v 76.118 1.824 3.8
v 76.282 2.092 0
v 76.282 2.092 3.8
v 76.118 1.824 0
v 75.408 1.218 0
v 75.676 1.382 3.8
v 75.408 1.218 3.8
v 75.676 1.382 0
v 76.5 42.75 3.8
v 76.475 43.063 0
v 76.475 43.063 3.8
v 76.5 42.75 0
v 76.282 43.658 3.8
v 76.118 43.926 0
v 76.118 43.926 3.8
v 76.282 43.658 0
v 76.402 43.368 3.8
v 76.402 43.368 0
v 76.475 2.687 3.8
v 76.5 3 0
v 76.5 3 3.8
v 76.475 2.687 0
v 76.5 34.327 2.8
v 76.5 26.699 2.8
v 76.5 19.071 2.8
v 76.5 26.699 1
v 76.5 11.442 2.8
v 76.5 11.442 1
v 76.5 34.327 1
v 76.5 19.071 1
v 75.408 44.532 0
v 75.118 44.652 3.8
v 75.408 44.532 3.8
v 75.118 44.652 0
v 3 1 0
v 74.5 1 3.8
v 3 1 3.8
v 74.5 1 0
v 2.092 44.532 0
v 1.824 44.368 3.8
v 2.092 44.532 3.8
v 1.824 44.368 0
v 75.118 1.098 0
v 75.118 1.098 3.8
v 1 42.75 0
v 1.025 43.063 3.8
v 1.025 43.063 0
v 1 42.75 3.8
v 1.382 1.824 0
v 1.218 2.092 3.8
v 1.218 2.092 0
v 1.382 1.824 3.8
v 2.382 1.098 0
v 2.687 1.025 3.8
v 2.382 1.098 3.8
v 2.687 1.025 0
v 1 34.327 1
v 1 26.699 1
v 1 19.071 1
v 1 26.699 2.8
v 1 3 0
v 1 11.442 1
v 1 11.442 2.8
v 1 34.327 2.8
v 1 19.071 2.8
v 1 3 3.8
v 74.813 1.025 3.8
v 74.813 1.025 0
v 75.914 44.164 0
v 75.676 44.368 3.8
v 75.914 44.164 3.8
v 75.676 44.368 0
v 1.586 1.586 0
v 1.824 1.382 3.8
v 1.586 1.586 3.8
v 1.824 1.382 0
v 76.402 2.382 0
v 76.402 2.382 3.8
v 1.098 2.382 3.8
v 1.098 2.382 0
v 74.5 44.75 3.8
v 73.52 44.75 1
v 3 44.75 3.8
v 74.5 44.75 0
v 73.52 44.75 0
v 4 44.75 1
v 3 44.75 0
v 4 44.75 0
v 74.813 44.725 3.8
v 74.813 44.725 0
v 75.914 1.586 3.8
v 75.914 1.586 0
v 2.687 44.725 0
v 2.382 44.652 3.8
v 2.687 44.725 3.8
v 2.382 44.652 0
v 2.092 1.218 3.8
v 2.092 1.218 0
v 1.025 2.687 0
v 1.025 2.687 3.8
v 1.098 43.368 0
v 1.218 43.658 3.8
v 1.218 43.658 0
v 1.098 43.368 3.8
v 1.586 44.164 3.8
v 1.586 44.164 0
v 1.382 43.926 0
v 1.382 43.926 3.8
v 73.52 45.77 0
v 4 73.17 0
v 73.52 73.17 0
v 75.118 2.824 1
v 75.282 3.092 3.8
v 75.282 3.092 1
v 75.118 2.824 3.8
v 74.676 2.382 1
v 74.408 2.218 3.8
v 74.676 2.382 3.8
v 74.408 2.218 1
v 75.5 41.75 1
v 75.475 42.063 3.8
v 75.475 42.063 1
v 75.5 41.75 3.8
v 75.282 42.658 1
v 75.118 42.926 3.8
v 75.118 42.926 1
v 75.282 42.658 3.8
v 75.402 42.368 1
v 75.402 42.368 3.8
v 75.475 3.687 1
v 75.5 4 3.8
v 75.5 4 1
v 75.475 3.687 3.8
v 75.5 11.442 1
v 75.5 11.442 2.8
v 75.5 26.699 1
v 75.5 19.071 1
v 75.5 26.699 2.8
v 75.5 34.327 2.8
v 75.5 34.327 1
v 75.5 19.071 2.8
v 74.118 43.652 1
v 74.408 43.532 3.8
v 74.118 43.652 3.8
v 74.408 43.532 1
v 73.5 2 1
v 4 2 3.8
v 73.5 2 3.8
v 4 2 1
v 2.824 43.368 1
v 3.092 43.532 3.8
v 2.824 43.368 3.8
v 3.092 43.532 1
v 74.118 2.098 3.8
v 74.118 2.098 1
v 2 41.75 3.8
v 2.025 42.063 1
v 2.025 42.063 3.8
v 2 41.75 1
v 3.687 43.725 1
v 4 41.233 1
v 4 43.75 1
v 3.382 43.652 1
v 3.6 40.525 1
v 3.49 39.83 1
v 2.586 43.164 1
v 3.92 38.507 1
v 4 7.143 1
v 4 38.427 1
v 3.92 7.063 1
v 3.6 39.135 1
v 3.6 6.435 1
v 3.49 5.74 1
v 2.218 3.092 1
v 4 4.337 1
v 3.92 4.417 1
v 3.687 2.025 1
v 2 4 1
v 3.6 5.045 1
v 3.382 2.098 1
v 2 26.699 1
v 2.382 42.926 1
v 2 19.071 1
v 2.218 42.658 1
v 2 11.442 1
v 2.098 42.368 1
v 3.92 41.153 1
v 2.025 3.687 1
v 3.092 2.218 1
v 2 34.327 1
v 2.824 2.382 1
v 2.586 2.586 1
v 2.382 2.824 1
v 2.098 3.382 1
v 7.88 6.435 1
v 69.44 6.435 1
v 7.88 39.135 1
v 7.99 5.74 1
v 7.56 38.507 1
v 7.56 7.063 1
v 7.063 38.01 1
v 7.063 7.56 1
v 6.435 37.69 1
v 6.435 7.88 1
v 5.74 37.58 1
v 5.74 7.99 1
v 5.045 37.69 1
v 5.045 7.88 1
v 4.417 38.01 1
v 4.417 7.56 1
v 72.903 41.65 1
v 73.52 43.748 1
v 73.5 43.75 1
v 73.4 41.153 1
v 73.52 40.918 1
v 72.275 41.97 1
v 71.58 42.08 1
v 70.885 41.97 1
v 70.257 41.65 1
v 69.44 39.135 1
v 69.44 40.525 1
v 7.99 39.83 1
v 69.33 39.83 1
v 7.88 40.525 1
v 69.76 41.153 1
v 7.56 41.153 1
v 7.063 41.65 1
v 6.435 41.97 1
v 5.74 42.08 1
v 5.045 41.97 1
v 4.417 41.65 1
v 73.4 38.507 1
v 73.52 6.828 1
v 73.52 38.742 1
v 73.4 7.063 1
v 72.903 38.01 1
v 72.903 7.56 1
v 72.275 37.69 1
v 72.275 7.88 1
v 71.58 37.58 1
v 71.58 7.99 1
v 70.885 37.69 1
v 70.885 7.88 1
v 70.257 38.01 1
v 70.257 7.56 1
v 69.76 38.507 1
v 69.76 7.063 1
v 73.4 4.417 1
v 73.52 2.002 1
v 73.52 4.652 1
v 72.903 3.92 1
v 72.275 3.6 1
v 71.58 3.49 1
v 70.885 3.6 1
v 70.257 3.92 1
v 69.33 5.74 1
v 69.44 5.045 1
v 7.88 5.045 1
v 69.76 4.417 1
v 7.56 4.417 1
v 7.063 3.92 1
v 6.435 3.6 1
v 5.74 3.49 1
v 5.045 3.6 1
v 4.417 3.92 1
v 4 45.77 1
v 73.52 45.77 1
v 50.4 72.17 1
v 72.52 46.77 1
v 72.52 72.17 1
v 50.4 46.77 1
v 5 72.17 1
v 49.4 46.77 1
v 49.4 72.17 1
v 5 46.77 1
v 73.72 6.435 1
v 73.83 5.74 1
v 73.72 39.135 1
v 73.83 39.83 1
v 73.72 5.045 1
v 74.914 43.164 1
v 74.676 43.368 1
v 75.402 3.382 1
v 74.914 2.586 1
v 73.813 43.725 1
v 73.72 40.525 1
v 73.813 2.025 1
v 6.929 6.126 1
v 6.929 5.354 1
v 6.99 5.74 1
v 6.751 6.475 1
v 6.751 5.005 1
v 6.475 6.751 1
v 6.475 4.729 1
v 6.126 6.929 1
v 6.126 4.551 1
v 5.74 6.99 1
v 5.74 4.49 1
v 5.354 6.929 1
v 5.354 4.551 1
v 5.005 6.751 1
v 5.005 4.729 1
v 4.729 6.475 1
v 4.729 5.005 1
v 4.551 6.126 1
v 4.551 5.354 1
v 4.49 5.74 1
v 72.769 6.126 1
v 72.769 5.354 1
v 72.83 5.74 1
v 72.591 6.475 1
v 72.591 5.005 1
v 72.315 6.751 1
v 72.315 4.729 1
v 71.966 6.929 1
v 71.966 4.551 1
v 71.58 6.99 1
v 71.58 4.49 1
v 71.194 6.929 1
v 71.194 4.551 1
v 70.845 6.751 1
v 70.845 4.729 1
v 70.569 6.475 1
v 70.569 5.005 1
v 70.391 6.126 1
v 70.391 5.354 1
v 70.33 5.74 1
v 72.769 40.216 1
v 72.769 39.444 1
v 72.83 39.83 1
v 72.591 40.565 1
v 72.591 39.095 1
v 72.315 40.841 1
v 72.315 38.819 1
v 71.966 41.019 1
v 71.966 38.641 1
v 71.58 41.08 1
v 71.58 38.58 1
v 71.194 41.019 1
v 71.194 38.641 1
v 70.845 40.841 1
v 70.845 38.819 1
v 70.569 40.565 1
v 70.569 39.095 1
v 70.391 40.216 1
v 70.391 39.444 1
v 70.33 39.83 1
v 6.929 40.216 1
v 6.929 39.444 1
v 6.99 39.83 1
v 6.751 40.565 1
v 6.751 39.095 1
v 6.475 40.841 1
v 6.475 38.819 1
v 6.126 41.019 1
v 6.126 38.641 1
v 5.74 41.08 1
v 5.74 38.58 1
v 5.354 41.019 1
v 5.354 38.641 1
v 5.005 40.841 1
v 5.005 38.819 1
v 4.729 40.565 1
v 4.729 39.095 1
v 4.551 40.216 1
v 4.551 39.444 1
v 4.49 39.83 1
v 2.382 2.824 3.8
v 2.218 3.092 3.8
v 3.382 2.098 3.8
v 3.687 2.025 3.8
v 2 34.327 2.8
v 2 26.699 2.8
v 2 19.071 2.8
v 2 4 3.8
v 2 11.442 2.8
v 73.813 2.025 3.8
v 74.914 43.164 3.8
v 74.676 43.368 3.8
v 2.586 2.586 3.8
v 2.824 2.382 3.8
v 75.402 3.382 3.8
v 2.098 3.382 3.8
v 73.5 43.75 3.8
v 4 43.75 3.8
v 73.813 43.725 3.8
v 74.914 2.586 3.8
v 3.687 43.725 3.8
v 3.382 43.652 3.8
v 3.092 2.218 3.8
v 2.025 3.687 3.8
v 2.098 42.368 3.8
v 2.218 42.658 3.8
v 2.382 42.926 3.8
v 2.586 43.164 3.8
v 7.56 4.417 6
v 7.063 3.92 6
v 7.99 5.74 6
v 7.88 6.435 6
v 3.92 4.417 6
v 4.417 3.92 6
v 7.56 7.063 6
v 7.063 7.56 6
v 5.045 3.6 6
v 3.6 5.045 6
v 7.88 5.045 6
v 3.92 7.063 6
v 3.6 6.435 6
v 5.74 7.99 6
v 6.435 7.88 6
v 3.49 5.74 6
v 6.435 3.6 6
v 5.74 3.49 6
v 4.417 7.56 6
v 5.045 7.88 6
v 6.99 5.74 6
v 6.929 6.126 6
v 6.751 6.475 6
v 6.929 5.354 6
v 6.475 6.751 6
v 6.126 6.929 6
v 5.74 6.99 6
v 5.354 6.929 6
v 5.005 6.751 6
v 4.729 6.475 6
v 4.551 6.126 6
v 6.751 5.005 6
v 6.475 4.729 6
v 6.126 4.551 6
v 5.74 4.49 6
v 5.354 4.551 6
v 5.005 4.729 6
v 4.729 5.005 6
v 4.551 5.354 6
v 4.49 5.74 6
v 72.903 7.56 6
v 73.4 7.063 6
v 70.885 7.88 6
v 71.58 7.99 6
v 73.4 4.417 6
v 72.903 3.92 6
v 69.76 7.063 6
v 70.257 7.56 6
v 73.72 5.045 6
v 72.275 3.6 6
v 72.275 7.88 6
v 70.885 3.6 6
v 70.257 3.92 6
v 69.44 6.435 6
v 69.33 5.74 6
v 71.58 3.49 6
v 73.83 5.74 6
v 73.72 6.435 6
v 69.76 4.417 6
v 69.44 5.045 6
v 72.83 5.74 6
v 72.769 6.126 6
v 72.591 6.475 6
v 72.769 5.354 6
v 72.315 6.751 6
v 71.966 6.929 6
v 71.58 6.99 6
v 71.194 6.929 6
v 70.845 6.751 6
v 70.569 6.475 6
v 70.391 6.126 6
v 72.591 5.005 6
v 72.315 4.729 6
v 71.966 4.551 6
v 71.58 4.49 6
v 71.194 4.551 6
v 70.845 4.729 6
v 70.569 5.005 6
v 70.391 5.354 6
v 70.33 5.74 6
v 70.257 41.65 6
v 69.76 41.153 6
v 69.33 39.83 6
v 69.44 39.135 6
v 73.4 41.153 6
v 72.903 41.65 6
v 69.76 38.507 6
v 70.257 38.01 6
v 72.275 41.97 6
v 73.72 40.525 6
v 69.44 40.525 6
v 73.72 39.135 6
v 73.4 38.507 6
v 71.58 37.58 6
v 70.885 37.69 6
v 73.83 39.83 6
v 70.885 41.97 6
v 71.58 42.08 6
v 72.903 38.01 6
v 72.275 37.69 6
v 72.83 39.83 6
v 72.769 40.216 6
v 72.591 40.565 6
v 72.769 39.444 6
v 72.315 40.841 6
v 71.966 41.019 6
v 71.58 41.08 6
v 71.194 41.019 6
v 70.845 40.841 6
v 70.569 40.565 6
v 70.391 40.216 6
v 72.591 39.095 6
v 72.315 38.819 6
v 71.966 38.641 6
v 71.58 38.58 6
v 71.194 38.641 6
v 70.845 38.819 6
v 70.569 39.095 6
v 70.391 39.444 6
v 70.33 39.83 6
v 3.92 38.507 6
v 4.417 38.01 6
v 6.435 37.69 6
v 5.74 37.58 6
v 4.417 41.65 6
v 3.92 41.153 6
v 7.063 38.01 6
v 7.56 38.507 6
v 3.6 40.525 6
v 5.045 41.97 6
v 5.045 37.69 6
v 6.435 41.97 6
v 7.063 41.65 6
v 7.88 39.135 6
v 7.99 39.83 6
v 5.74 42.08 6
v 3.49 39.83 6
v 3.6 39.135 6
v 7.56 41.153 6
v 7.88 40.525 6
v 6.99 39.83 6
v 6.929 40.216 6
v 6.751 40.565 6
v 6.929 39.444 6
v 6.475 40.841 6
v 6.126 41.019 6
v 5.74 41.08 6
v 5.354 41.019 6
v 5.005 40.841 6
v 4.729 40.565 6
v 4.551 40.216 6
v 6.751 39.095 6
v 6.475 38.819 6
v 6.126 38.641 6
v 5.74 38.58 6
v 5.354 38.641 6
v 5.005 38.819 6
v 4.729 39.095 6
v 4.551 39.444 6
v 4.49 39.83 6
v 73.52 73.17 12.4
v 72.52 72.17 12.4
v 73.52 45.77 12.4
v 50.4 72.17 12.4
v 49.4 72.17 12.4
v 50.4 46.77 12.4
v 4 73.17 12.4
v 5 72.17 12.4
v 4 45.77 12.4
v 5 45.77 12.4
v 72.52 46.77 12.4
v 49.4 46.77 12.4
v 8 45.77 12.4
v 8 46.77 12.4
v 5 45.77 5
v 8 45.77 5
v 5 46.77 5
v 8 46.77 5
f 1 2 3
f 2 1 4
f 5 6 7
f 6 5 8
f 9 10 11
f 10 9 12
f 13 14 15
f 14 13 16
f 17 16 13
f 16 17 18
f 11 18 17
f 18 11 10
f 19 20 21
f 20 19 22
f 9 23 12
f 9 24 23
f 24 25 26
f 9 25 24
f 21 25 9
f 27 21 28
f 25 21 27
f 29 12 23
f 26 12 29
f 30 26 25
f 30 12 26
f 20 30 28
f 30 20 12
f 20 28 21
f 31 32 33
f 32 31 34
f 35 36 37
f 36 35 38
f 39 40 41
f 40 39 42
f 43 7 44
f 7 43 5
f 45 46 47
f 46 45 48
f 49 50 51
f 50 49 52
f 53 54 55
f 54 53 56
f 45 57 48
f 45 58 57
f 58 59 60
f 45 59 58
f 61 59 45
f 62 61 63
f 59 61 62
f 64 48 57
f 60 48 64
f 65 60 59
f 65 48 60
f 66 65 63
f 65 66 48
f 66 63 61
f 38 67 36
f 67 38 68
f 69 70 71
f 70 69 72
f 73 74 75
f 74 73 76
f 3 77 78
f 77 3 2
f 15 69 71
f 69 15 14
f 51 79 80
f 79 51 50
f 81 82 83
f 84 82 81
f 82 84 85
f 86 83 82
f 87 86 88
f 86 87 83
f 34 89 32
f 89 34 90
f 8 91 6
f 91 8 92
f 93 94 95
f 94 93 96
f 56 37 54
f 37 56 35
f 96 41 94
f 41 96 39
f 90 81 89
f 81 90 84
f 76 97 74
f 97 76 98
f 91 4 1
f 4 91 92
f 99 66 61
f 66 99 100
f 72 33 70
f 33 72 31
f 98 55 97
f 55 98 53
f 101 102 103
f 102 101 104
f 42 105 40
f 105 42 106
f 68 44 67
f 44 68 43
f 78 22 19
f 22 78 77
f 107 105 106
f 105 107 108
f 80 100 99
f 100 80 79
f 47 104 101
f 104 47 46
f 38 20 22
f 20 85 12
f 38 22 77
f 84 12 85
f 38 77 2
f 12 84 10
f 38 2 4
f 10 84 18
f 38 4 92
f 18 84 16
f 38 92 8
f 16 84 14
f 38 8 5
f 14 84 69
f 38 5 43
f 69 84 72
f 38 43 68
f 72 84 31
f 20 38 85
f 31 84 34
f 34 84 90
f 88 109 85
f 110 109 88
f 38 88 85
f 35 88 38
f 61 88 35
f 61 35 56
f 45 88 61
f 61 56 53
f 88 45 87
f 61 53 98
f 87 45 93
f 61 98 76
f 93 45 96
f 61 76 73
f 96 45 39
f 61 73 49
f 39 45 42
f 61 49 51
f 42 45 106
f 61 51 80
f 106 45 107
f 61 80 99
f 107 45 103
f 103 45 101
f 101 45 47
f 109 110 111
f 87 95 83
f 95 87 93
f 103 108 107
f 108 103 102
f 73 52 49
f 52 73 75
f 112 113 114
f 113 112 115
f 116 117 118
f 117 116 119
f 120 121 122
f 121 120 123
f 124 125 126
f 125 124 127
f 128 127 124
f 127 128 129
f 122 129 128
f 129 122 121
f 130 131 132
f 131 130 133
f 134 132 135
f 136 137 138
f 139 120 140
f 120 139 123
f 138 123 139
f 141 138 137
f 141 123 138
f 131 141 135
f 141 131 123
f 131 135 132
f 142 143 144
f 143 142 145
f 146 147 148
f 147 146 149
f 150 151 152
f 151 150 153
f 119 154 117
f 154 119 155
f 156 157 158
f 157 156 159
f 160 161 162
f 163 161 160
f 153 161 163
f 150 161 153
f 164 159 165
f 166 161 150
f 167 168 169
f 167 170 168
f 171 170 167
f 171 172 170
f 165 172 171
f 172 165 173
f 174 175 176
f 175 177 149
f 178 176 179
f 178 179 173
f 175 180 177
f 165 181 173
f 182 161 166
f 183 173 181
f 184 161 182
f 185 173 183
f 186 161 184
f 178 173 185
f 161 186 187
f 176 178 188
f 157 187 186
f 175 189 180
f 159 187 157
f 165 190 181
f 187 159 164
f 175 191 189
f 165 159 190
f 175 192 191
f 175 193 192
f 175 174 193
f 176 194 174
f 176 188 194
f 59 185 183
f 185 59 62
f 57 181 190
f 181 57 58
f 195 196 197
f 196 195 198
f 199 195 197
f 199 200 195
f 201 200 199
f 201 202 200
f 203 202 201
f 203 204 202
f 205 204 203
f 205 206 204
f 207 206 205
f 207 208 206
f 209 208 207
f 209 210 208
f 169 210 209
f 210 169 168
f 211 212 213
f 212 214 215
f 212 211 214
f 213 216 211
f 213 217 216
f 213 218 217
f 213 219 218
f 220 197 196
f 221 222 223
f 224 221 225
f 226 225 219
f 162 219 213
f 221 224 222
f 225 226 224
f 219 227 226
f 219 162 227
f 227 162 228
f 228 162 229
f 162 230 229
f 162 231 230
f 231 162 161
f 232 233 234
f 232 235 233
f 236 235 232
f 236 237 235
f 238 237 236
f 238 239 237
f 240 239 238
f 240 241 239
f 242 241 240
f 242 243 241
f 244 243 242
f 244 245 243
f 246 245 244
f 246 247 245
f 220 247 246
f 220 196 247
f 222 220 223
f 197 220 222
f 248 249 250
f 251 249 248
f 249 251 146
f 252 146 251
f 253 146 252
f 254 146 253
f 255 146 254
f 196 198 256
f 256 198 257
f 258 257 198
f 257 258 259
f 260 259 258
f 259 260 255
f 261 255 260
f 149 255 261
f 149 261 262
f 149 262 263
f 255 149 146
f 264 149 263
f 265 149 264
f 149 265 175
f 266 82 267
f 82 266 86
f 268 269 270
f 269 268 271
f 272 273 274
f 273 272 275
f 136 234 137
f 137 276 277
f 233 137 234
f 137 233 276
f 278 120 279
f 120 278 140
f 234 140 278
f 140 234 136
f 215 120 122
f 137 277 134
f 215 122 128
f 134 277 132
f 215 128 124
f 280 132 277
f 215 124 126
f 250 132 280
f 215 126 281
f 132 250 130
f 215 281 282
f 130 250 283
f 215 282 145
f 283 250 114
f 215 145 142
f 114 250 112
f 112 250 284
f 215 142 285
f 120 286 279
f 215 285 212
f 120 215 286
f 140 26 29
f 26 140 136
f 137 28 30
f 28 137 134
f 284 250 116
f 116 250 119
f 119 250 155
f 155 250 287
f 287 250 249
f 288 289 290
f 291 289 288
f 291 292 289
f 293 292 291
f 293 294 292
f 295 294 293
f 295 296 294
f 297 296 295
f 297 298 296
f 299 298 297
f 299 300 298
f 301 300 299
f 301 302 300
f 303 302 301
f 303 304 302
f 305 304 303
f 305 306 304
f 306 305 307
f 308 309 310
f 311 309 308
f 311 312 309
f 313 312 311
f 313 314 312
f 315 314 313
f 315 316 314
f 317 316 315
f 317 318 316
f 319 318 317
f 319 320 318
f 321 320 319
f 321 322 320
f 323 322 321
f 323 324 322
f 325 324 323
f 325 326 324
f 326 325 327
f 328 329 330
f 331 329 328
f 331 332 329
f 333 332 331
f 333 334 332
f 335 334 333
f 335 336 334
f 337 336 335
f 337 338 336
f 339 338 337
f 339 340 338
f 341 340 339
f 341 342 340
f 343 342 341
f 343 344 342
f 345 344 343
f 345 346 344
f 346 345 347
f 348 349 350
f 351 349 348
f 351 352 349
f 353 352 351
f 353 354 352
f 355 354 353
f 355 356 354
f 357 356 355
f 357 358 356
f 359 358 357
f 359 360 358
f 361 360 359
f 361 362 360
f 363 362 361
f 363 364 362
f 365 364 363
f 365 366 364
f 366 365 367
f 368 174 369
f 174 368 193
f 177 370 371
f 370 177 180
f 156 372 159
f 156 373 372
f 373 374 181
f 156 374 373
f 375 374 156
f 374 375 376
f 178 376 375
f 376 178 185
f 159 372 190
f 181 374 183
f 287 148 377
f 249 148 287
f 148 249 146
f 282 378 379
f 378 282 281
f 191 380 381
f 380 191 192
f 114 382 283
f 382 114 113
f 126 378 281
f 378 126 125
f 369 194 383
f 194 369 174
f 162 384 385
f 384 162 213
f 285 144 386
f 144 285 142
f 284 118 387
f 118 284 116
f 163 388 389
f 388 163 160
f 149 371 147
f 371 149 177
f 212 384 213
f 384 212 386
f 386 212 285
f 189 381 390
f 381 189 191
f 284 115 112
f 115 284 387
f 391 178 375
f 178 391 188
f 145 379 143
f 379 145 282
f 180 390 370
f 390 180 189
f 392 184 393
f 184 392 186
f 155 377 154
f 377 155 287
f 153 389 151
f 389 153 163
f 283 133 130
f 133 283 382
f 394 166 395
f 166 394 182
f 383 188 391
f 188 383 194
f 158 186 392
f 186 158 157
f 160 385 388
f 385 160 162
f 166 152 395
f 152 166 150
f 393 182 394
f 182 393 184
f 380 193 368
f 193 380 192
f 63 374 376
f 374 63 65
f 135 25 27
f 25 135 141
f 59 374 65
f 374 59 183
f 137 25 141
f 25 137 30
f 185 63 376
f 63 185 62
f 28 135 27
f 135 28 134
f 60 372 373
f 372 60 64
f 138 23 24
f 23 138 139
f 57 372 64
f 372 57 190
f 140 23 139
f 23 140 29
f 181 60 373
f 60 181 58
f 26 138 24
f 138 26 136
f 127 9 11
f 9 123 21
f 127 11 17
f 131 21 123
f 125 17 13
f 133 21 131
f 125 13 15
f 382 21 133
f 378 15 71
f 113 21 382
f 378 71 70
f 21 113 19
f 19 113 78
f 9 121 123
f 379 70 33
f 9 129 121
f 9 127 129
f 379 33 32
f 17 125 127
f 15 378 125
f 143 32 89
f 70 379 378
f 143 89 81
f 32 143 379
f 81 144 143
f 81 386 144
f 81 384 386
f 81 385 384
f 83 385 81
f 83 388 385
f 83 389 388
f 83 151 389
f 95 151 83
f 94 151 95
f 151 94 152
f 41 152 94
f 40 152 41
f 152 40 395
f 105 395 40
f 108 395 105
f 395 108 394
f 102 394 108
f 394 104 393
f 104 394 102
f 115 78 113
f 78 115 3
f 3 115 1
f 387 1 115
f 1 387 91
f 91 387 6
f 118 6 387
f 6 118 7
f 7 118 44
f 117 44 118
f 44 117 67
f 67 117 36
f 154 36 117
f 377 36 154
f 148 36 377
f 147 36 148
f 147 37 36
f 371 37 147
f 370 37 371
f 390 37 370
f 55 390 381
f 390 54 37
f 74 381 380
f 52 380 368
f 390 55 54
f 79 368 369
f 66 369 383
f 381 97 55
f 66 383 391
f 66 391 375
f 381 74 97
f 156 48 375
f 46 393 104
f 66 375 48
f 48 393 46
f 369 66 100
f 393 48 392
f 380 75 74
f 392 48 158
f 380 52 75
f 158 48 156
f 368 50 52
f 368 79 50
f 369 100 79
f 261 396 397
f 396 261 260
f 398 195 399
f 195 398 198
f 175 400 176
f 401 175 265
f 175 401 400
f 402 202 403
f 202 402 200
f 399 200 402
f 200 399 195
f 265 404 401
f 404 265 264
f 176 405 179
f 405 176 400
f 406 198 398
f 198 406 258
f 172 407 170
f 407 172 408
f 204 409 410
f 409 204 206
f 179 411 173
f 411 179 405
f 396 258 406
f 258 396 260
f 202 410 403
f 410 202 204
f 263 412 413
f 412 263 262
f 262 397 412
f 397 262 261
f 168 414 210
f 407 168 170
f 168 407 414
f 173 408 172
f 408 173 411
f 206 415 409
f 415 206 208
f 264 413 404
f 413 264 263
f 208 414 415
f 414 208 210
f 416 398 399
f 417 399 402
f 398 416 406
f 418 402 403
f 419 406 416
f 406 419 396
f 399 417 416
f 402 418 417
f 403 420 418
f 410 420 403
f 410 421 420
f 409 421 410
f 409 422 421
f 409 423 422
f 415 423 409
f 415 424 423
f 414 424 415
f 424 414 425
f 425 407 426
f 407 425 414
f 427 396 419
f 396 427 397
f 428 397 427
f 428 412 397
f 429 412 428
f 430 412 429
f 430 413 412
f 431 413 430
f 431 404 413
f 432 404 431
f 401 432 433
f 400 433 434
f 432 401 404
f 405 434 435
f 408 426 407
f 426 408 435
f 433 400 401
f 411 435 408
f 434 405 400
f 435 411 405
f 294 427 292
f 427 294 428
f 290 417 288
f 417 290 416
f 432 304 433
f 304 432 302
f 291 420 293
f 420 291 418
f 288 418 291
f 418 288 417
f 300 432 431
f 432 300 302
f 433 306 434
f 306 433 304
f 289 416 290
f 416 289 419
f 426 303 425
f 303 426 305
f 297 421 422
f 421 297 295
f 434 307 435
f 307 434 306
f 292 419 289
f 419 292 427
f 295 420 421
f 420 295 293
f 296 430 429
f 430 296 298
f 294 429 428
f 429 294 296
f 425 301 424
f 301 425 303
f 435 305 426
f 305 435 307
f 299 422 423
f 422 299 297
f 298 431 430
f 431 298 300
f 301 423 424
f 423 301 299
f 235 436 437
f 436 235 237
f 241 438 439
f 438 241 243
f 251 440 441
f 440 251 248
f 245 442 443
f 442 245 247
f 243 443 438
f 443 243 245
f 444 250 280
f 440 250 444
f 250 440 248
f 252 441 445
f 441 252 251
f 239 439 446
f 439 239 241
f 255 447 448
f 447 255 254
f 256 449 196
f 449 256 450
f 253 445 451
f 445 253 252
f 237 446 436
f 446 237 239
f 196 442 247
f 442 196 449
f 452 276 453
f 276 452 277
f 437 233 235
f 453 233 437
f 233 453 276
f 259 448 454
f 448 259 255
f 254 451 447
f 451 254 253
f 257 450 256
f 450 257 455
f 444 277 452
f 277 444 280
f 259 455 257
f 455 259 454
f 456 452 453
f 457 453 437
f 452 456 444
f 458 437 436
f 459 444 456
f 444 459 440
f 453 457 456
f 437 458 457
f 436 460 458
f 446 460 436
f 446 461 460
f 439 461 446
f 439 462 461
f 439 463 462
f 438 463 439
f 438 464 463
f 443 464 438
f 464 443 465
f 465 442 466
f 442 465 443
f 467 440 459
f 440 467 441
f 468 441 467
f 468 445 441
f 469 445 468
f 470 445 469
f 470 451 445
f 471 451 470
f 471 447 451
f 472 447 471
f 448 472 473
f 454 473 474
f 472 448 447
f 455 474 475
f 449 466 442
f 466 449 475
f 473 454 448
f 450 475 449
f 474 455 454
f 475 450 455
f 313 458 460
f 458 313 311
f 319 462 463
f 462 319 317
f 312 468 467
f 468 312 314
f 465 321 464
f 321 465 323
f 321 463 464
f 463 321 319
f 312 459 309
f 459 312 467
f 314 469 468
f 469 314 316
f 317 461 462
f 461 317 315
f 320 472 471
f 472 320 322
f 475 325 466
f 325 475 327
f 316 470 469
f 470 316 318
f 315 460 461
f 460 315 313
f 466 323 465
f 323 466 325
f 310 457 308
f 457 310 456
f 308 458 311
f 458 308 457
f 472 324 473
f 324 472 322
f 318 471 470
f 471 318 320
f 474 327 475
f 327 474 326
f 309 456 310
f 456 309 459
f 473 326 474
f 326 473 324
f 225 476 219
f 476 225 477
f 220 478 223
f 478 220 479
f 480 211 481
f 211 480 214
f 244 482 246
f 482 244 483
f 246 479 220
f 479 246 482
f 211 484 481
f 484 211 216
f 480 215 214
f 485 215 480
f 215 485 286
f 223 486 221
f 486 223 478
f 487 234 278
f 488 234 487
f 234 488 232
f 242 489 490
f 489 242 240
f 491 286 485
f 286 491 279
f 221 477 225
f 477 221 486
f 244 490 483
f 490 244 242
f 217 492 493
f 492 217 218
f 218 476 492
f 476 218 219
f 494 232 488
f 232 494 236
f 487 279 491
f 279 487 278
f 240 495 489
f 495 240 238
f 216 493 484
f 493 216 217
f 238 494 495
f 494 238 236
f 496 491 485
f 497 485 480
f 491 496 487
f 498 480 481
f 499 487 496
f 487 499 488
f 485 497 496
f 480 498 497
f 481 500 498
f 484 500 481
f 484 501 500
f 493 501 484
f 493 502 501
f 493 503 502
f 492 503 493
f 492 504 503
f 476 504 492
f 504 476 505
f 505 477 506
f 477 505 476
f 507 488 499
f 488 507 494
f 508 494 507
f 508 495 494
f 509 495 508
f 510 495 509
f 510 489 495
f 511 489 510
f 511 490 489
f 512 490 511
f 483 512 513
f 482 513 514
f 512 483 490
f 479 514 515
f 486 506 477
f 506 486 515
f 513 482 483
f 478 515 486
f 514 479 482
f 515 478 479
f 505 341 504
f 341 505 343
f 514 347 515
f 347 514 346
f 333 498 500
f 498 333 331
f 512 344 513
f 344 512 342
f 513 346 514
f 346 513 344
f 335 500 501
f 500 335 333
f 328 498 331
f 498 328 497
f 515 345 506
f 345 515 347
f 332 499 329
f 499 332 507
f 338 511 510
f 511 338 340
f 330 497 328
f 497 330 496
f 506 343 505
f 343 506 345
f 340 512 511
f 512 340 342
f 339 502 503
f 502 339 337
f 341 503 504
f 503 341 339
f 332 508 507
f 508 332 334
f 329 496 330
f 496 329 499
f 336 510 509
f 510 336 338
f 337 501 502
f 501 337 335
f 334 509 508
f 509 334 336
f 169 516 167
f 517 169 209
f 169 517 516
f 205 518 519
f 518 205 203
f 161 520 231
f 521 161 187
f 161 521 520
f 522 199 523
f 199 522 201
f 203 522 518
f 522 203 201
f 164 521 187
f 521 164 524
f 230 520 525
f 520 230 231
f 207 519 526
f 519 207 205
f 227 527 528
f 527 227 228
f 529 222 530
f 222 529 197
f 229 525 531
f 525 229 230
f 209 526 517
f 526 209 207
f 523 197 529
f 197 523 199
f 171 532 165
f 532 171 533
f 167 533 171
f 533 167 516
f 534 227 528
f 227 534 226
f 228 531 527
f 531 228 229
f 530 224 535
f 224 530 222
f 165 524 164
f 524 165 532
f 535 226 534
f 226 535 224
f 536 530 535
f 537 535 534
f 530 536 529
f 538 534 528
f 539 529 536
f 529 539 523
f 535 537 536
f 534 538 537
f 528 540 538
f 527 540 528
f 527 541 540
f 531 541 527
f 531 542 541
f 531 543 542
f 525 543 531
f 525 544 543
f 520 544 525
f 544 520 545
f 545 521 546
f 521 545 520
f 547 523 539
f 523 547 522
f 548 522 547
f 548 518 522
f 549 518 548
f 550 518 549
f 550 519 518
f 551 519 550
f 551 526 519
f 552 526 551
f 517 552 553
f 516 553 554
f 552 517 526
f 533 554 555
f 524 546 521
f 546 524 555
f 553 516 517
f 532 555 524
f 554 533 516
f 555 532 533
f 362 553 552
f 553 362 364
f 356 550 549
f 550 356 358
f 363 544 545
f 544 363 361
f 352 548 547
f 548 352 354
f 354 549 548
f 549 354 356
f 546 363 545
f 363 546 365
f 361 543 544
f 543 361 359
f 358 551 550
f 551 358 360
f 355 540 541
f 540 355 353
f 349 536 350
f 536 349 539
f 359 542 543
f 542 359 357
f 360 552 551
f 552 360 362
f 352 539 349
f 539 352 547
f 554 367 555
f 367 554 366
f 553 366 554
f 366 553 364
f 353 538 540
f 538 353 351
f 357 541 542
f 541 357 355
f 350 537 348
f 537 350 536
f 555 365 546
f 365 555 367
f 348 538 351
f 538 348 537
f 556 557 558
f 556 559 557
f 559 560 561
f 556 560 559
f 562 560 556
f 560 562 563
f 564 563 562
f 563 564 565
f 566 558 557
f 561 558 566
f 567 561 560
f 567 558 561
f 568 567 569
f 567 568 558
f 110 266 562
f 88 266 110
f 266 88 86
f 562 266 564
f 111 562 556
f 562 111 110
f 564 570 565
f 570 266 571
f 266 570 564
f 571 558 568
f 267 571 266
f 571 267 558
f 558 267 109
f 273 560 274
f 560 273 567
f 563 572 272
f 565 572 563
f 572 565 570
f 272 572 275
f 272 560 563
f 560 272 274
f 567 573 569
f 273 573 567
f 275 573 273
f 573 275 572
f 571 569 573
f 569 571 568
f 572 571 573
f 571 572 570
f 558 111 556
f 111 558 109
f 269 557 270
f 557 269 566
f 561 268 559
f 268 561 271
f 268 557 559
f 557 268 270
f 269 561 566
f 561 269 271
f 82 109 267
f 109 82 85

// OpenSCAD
// file: ProjectBox/util.scad
// Copyright (c) 2024 Chris Lee and contibuters.
// Licensed under the MIT license. See LICENSE file in the project root for details.

include <MCAD/units.scad>

ones = [1, 1, 1];

module RX(angle) {
  rotate(angle, X) children();
}
module RY(angle) {
  rotate(angle, Y) children();
}
module RZ(angle) {
  rotate(angle, Z) children();
}
module TX(dist) {
  translate(X*dist) children();
}
module TX(dist) {
  translate(X*dist) children();
}
module TY(dist) {
  translate(Y*dist) children();
}
module TZ(dist) {
  translate(Z*dist) children();
}

// x-extra and y-extra adjust the x/y offset at the far-x and far-y corners.
module at_corners(dims, corner_offset, to_draw=undef, x_extra=0.0, y_extra=0.0) {
  o = corner_offset;
  if (!to_draw || to_draw[0]) translate([o, o, 0]) children();
  if (!to_draw || to_draw[1]) translate([dims[0]-o+x_extra, o, 0]) rotate(90, Z) children();
  if (!to_draw || to_draw[2]) translate([dims[0]-o+x_extra, dims[1]-o+y_extra, 0])
				rotate(180, Z) children();
  if (!to_draw || to_draw[3]) translate([o, dims[1]-o+y_extra, 0]) rotate(270, Z) children();
}
// file: ProjectBox/screw_tab.scad
// Copyright (c) 2024 Chris Lee and contibuters.
// Licensed under the MIT license. See LICENSE file in the project root for details.

include <MCAD/units.scad>

// Screw tab is drawn in the y-direction (attached on -Y side).
module screw_tab(tab_width=10, thickness=2, screw_radius=2) {
  $fn=40;
  dz = thickness;
  sd = tab_width;
  sr = tab_width / 2;
  translate([-sr, -epsilon, 0]) difference() {
    union() {
      cube([sd, sr, dz]);
      translate([sr, sr, 0]) cylinder(dz, sr, sr);
    }
    translate([sr, sr, -epsilon]) cylinder(dz+1, screw_radius, screw_radius);
  }
}
// file: ProjectBox/rounded_box.scad
// Copyright (c) 2024 Chris Lee and contibuters.
// Licensed under the MIT license. See LICENSE file in the project root for details.

module rounded_box(dims, r) {
  x = dims[0];
  y = dims[1];
  z = dims[2];
  module cyl() {
    cylinder(z, r, r, $fn=40);
  }
  if (r == 0) {
    cube(r);
  } else {
    hull() {
      translate([r, r, 0]) cyl();
      translate([x-r, r, 0]) cyl();
      translate([x-r, y-r, 0]) cyl();
      translate([r, y-r, 0]) cyl();
    }
  }
}
// file: ProjectBox/shtc3_window.scad
// Copyright (c) 2024 Chris Lee and contibuters.
// Licensed under the MIT license. See LICENSE file in the project root for details.

module shtc3_window(offset, space_above_board, wall, negative, z_gap = 0.0) {
  sz = [3, 3, 1];
  translate(offset) {
    if (negative) {
      translate([0, 0, z_gap-1]) {
	cube([sz[0], sz[1], space_above_board+wall+2-z_gap]);
      }
    } else {
      translate([-wall, -wall, z_gap+epsilon]) {
	cube([sz[0] + 2*wall, sz[1] + 2*wall, space_above_board-z_gap]);
      }
    }
  }
}
// file: ProjectBox/project_box.scad
// Copyright (c) 2024 Chris Lee and contibuters.
// Licensed under the MIT license. See LICENSE file in the project root for details.

include <MCAD/units.scad>
include <rounded_box.scad>
include <screw_tab.scad>
use <util.scad>

bump_d = 0.8;

module in_board_frame(outer_dims, board_dims, space_below_board) {
  translate([(outer_dims[0] - board_dims[0])/2,
	     (outer_dims[1] - board_dims[1])/2,
	     space_below_board])
    children();
}

default_tab_len = 10;
function tab_length(dim, num_tabs=2) = min(default_tab_len, dim/(2*(num_tabs+1)));
function tab_offset(i, dim, num_tabs=2) = (dim*(i+1)/(num_tabs+1))-0.5*tab_length(dim, num_tabs);

module project_box(outer_dims,
		   wall_thickness=1,
		   gap=0.1,
		   // If true put snaps for top/bottom on sides rather than front/back.
		   snaps_on_sides=false,
		   corner_radius=0.0,
		   top=true,
		   top_cutouts=undef,
		   ym_cutouts=undef,
		   screw_tab_d=0) {
  wall = wall_thickness;
  num_snaps = 2;

  // Length of side of box snap-tabs will be added.
  tabdim = snaps_on_sides ? outer_dims[1] : outer_dims[0];
  // Length of snap-tab holes (tabs shrinks slightly to fit).
  tablen = tab_length(tabdim, num_snaps);
  // Difference between tab length and tab hole length;
  tab_gap = 1;

  // Space between bottom of box and top of box.
  fit_gap = 0.02;

  // The bottom of the box fits inside the shell of the top.
  dims = top ? outer_dims : outer_dims - (2*wall+fit_gap) * [1, 1, 1];

  // Tabs for clicking base into start at wall-height, are 2*wall-height high.
  // Allow 2*wall_height above bump for hight of bottom part of box.
  tab_depth = min(bump_d, dims[2] - 3*wall);
  bottom_height = wall+tab_depth+2*wall;

  module bump() {
    dh = bump_d - fit_gap;
    rotate(90, Y) cylinder(tablen-tab_gap, dh, dh, $fn=20);
  }

  module hump_positives(humps, space_above_board, corner_radius, wall) {
    for (hump = humps) {
      offset = hump[0];
      outer_dims = hump[1];
      z_start = gap * 2 + wall + space_below_board + board_thickness + space_above_board + epsilon;
      translate([offset[0], offset[1], z_start]) rounded_box(outer_dims, corner_radius);
    }
  }
  module hump_negatives(humps, space_above_board, corner_radius, wall) {
    for (hump = humps) {
      offset = hump[0];
      outer_dims = hump[1];
      z_start = gap * 2 + wall + space_below_board + board_thickness + space_above_board - epsilon - epsilon;
      translate([offset[0]+wall, offset[1]+wall, z_start])
	rounded_box(outer_dims-[wall*2, wall*2, wall], corner_radius);
    }
  }
  module cutouts(cutout_list, remove_len) {
    for (cutout = cutout_list) {
      offset = cutout[0];
      dims = cutout[1];
      translate([offset[0], offset[1], 0]) cube([dims[0], dims[1], remove_len]);
    }
  }

  wedge_dx = 2*wall;
  wedge_dy = min(outer_dims[1]-2*wall-corner_radius, 10);
  wedge_dz = wedge_dx;
  module wedge() {
    // Bump to stop the bottom of box to go too up into the top.
    translate([0, 0, bottom_height+fit_gap]) {
      // Start with cube, switch to wedge for printing.
      translate(Y*wedge_dy) rotate(90, X)
	linear_extrude(wedge_dy) polygon([[0, 0], [0, wedge_dz], [wedge_dx, 0]]);
    }
  }

  // The bottom of the box fits inside the shell of the top.
  translate(top ? [0,0,0] : wall*[1, 1, 0]) union() {
    difference() {
      // shell
      difference() {
	union() {
	  rounded_box(dims, corner_radius);
	  if (top)
	    hump_positives(bumps, space_above_board, corner_radius, wall);
	}
	iz = top ? (dims[2] - 2*wall) : dims[2];  // inner-z
	translate(ones*wall) rounded_box([dims[0] - wall*2, dims[1]-wall*2, iz], corner_radius);
	if (top) {
	  hump_negatives(bumps, space_above_board, corner_radius, wall);
	  // cutouts from the top surface
	  if (top_cutouts)
	    cutouts(top_cutouts, remove_len=100);
	  // cutouts from the y=0 surface
	  if (ym_cutouts)
	    translate([0, 1+wall, 0]) rotate([90, 0, 0]) cutouts(ym_cutouts, remove_len=(wall+2));
	}
      }

      if (!top) {
	// Box bottom

	// Cut off top.
	translate([-1, -1, bottom_height]) { cube(dims + 2 * ones); }
	// Make a slot for top to click into
	bottom_offset = -wall;  // offset to account for bottom fitting inside top.
	if (snaps_on_sides) {
	  for (isnap = [0:num_snaps-1]) {
	    y = tab_offset(isnap, tabdim, num_snaps) + bottom_offset;
	    translate([-1, y, wall]) cube([dims[0]+2, tablen, wall+tab_depth]);
	  }
	} else {
	  for (isnap = [0:num_snaps-1]) {
	    x = tab_offset(isnap, tabdim, num_snaps) + bottom_offset;
	    translate([x, -1, wall]) cube([tablen, dims[1]+2, wall+tab_depth]);
	  }
	}
      }	else {
	// Box top

	// Cut out for bottom
	translate(wall*[1, 1, -1]) {
	  rounded_box([dims[0]-2*wall, dims[1]-2*wall, wall*3], corner_radius);
	}
      }
    }

    // Board supports
    if (top) {
      // Snaps: Make bumps to click into slot in bottom.
      if (snaps_on_sides) {
	for (isnap = [0:num_snaps-1]) {
	  y = tab_offset(isnap, tabdim, num_snaps) + tab_gap/2;
	  translate([wall-epsilon, y, wall+gap/2]) rotate(90, Z) bump();
	  translate([dims[0]+epsilon-wall, y, wall+gap/2]) rotate(90, Z) bump();
	}
	translate([wall-epsilon, (outer_dims[1]-wedge_dy)/2, 0]) wedge();
	translate([outer_dims[0]-wall+epsilon, (outer_dims[1]+wedge_dy)/2, 0])
	  rotate(180, Z) wedge();
      } else {
	for (isnap = [0:num_snaps-1]) {
	  x = tab_offset(isnap, tabdim, num_snaps) + tab_gap/2;
	  translate([x, wall-epsilon, wall+gap/2]) bump();
	  translate([x, dims[1]+epsilon-wall, wall+gap/2]) bump();
	}
	translate([(outer_dims[0]+wedge_dy)/2, wall-epsilon, 0]) rotate(90, Z) wedge();
	translate([(outer_dims[0]-wedge_dy)/2, outer_dims[1]-wall+epsilon, 0])
	  rotate(270, Z) wedge();
      }
    }
  }

  if (top && screw_tab_d > 0) {
    translate([outer_dims[0]/2, outer_dims[1], 0])
      screw_tab(tab_width=screw_tab_d, thickness=2*wall, screw_radius=2);
  }
}

module holder_tab(wall_thickness, thickness=2, out_r=4, in_r=2) {
  translate(Z*wall_thickness) linear_extrude(thickness) {
    $fn = 20;
    y = epsilon;
    difference() {
      hull() {
	translate([0, epsilon-out_r]) circle(out_r);
	polygon([[-out_r, epsilon], [out_r, epsilon],
		 [out_r, 2*epsilon], [out_r, 2*epsilon]]);
      }
      translate([0, -out_r]) circle(in_r);
    }
  }
}
// file: ProjectBox/mounts.scad
// Copyright (c) 2024 Chris Lee and contibuters.
// Licensed under the MIT license. See LICENSE file in the project root for details.

module screw_mount(height, wall, screw_radius) {
  $fn = 20;
  difference() {
    cylinder(height, screw_radius+wall, screw_radius+wall);
    cylinder(height+epsilon, screw_radius, screw_radius);
  }
}
// file: board.scad
// Copyright (c) 2025 Chris Lee and contibuters.
// Licensed under the MIT license. See LICENSE file in the project root for details.

include <ProjectBox/project_box.scad>

board_thickness = 1.6;
pad_space = 2.54;
board_dims = [28*pad_space, 15.5*pad_space, board_thickness];

module Garden133_board() {
  u = pad_space;

  // Board imported from KiCad (VRML) -> Blender
  translate([board_dims[0]/2, board_dims[1]/2, board_dims[2]/2]) color("white")
    import(file="Garden133.stl", convexity=3);

}
// file: gui.scad
// Copyright (c) 2025 Chris Lee and contibuters.
// Licensed under the MIT license. See LICENSE file in the project root for details.

// :GUI:
show_vitamins = false;
// :GUI:
show_box = true;
// :GUI:
top = true;
// file: box.scad
// Copyright (c) 2025 Chris Lee and contibuters.
// Licensed under the MIT license. See LICENSE file in the project root for details.

include <ProjectBox/mounts.scad>
include <ProjectBox/project_box.scad>
include <ProjectBox/shtc3_window.scad>
include <board.scad>

ones = [1, 1, 1];

wall_thickness = 1;
gap = 0.2;
corner_radius = 2;
mount_offset = pad_space;

space_above_board = 3;
space_below_board = 5;
inner_dims = (board_dims
	      + Z*(space_above_board+space_below_board)
	      + 2*gap*ones);
outer_dims = (inner_dims
	      + 2*ones*wall_thickness
	      + [2, 2, 0] * corner_radius);

shtc3_loc = [51.8, 1.4];

buttons_loc = [30, 15];
buttons_size = [13, 7];

conn_loc = [65, 7];
conn_size  = [7.6, 29.5];

top_cutouts = [[buttons_loc, buttons_size], [conn_loc, conn_size]];

usb_cutout = [[17.75, wall_thickness+space_below_board+board_thickness-1], [9.5, 3.5]];
ym_cutouts = [usb_cutout];

// Location for "USB DBG" text to carve above buttons
text_loc = [25, 25];

antenna_cutout = [[40, -1], [5, wall_thickness+space_below_board+board_thickness+4.4]];
// antenna_cutout = [[5, wall_thickness+space_below_board+board_thickness+1], [10, 4]];
yp_cutouts = [antenna_cutout];

module in_Garden133_board_frame(board_height=false) {
  zoffset = wall_thickness + (board_height ? space_below_board : 0);
  in_board_frame(outer_dims, board_dims, zoffset) children();
}

module Garden133_box(top) {
  wall = wall_thickness;

  difference() {
    union() {
      project_box(outer_dims,
		  wall_thickness=wall_thickness,
		  gap=gap,
		  snaps_on_sides=true,
		  corner_radius=corner_radius,
		  top=top,
		  top_cutouts=top_cutouts,
		  ym_cutouts=ym_cutouts,
		  yp_cutouts=yp_cutouts);
      if (top) {
	translate([text_loc[0]-2, text_loc[1]-2, outer_dims[2]-2*wall+epsilon]) cube([30, 8, wall]);
	in_Garden133_board_frame(board_height=true)
	  shtc3_window(shtc3_loc, space_above_board+2*wall, wall, false, z_gap=1.5);
	// Bumps on top etc.
	// translate(b1o) rounded_box(b1d, corner_radius);
      } else {
	// Stuff to add on bottom.
	// Stuff to add on bottom.
	in_Garden133_board_frame() {
	  at_corners(board_dims+1.0*X, mount_offset, x_extra=-1.2, y_extra=-0.2)
	    screw_mount(space_below_board, wall, 2.5/2);
	}
	
      }	
    }
    // Cut outs.
    if (top) {
      in_Garden133_board_frame(board_height=true)
	shtc3_window(shtc3_loc, space_above_board+wall+1, wall, true, z_gap=1);
      
      // Negative space of bumps.
      // translate(b1o+[wall, wall, -epsilon]) rounded_box(b1d-wall*[2, 2, 1], corner_radius);
      // translate(b2o+[wall, wall, -epsilon]) rounded_box(b2d-wall*[2, 2, 1], corner_radius);

      translate([text_loc[0], text_loc[1], outer_dims[2]-0.5+epsilon])
	linear_extrude(0.5) text("USB DBG", size=4);
    }
  }
}
// main file
// Copyright (c) 2025 Chris Lee and contibuters.
// Licensed under the MIT license. See LICENSE file in the project root for details.

//include <board.scad>
include <box.scad>
include <gui.scad>
include <board.scad>

wall = 1;
space = 0.2;
battery_dims = [44, 25, 10];
battery_space_inner = battery_dims + space*[2, 2, 2];
battery_space_outer = battery_space_inner + [2*wall, 2*wall, 2];

battery_offset = [4, outer_dims[1], 0];

desiccant_bin_offset = battery_offset+[battery_space_outer[0]-wall, 0, 0];

descicant_bin_outer = [outer_dims[0]-4-desiccant_bin_offset[0],
		       battery_space_outer[1], battery_space_outer[2]];
descicant_bin_inner = descicant_bin_outer - wall*[2, 2, 1];

module tray() {
  Garden133_box(top=false);

  translate([battery_offset[0], 2, 0])
    cube([outer_dims[0]-8, battery_offset[1]+battery_space_outer[1]-2, wall]);

  translate(battery_offset) {
    // battery bin
    difference() {
      cube(battery_space_outer);
      translate(wall*[1, 1, 0]) cube(battery_space_inner+Z*10);
      translate([wall, -1, 5]) cube([3, 2+wall, battery_space_outer[2]]);
    }
    if (show_vitamins) {
      translate((wall+space)*[1, 1, 0] + Z*space) color("green") cube(battery_dims);
    }
  }

  translate(desiccant_bin_offset) {
    // desiccant bin
    difference() {
      cube(descicant_bin_outer);
      translate(wall*[1, 1, 0]) cube(descicant_bin_inner+Z*10);
    }
    if (show_vitamins) {
      translate((wall+space)*[1, 1, 0] + Z*space) color("green") cube(battery_dims);
    }
  }
}

tray();
